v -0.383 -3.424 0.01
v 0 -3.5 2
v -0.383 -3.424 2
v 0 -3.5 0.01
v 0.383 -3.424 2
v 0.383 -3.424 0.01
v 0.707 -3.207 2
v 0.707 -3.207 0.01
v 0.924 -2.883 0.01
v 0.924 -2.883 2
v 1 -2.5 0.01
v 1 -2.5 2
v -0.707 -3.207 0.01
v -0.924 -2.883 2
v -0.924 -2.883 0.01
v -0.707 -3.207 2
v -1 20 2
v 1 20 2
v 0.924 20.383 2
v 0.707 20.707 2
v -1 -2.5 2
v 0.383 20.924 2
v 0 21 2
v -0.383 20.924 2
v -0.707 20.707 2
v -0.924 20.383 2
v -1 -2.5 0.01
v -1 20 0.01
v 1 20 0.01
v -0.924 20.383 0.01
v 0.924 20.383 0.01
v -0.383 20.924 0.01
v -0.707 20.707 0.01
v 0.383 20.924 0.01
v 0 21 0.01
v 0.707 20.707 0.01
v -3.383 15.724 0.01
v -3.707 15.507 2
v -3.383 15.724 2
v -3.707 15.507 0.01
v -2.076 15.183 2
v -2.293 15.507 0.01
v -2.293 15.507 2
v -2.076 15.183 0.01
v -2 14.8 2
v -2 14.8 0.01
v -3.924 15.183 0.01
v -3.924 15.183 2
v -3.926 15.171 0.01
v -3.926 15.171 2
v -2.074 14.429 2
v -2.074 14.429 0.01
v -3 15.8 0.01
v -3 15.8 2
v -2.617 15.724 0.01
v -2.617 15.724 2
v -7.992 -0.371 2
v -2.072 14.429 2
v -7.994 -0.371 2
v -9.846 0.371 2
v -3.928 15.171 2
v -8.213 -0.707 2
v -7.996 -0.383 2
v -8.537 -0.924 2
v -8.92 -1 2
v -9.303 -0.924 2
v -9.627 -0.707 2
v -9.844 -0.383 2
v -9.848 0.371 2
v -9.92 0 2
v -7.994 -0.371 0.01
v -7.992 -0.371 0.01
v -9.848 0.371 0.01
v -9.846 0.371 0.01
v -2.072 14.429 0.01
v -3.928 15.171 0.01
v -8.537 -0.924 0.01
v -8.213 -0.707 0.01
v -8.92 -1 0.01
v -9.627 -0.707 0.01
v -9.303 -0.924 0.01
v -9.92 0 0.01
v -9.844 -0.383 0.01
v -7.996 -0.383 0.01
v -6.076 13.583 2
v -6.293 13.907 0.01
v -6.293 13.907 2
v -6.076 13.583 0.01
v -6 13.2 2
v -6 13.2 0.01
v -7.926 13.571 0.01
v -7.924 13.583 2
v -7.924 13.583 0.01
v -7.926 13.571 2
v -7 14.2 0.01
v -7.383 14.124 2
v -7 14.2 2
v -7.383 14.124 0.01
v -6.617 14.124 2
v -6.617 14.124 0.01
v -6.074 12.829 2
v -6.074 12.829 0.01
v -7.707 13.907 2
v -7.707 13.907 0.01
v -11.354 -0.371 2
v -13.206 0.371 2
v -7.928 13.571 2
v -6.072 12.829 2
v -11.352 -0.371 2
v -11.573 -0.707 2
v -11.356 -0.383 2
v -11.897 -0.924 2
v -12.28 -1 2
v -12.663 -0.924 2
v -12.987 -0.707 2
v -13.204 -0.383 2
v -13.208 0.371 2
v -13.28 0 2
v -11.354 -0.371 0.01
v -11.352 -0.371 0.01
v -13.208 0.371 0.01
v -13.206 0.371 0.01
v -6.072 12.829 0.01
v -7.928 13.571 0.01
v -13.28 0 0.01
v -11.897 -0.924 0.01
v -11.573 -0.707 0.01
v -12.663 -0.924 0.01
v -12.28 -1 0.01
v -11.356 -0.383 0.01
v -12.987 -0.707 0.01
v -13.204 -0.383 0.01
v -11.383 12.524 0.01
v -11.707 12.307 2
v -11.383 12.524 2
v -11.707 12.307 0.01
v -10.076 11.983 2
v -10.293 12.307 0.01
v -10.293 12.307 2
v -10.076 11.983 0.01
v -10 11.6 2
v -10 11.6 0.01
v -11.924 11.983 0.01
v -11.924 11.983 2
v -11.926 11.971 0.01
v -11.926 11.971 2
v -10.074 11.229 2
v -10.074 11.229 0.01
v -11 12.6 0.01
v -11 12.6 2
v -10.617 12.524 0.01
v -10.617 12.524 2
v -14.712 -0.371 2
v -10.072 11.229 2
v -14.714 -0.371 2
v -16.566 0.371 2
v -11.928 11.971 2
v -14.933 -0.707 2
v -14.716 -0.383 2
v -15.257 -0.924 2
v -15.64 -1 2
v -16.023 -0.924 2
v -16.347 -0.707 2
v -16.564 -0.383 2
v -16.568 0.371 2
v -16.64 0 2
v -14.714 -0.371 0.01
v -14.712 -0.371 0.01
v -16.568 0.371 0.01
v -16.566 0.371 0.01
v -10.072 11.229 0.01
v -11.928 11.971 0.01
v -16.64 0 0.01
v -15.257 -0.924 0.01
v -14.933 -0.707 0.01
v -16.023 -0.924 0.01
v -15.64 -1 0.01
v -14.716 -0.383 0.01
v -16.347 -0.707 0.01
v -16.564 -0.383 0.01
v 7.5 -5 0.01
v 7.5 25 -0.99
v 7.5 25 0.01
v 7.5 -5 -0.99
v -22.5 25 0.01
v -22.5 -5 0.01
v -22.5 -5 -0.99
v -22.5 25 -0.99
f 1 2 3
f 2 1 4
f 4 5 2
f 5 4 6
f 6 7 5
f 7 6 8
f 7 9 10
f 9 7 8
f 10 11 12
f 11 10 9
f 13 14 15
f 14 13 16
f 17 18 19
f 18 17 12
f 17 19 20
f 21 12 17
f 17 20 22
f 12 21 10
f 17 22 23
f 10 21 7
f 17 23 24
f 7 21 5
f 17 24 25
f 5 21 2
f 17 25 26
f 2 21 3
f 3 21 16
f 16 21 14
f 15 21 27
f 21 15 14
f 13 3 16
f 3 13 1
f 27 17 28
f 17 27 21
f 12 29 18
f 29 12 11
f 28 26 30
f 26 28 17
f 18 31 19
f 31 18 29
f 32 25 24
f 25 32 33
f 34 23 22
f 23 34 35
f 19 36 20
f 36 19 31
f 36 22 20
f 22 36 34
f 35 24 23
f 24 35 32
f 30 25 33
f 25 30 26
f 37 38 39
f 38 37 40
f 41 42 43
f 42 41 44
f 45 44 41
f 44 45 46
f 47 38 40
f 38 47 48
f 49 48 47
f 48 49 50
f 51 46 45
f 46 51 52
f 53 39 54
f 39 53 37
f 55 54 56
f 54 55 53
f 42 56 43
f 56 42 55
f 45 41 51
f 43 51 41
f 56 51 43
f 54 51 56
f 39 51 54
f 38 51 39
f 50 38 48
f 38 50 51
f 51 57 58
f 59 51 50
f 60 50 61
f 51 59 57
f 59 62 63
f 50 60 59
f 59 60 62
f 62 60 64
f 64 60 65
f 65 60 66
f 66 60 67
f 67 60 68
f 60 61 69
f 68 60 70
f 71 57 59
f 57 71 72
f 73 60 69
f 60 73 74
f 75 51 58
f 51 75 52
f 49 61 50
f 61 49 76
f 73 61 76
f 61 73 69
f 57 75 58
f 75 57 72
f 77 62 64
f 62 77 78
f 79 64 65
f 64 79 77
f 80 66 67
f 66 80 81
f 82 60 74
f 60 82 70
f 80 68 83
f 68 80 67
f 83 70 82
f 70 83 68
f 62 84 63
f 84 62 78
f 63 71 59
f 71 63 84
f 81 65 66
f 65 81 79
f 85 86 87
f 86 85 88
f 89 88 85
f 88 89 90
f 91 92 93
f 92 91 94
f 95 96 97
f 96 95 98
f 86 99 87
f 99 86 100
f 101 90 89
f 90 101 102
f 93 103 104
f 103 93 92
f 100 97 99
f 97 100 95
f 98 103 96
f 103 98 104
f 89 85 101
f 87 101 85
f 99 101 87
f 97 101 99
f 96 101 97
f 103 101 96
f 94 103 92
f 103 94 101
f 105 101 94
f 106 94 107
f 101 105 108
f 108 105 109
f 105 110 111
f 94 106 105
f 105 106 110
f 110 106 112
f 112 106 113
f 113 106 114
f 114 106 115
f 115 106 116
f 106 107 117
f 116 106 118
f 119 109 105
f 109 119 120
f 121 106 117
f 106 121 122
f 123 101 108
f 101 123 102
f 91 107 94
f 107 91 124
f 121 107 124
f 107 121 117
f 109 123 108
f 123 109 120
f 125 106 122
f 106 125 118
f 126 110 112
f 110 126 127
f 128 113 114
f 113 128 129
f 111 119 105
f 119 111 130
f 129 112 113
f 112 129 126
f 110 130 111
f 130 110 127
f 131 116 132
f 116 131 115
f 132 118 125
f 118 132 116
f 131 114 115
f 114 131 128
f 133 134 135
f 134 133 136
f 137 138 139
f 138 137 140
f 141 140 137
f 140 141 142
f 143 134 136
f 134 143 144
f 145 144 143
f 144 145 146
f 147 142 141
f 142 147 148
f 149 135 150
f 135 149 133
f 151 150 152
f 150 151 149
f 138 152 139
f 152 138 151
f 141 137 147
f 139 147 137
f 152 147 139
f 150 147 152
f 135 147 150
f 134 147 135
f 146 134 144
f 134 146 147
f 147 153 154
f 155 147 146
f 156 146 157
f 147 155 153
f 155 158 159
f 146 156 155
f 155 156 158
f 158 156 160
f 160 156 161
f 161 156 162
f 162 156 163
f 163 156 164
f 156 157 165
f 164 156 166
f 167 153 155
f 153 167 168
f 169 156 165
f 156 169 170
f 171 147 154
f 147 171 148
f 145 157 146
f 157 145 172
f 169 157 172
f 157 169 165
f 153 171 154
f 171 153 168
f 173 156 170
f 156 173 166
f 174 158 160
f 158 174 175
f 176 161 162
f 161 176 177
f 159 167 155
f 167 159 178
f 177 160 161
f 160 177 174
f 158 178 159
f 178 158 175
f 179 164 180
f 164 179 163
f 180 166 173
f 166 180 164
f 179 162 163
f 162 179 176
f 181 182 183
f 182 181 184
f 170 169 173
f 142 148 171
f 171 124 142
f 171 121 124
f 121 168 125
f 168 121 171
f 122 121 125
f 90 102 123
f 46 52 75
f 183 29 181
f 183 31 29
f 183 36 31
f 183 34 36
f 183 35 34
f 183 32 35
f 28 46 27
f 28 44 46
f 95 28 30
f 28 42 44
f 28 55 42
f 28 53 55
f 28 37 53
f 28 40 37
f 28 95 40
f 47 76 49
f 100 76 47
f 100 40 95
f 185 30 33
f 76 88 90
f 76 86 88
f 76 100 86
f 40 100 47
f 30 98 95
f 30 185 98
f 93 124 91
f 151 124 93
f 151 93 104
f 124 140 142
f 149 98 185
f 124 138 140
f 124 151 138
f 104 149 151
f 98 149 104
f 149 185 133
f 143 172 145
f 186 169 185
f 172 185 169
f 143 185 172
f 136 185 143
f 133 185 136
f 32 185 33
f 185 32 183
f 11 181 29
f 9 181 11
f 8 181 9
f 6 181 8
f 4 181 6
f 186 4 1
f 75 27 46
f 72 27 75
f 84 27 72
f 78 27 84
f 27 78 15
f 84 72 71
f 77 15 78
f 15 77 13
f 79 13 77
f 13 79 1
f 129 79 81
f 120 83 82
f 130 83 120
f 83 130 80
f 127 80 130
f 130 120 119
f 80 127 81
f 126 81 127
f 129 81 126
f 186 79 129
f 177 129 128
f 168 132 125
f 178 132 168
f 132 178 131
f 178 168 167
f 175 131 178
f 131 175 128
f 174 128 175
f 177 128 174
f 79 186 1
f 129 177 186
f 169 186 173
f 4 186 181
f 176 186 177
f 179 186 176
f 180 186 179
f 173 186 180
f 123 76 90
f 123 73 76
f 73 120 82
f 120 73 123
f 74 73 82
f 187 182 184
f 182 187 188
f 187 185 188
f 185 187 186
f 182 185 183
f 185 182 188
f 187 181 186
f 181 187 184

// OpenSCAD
// 4p-icon.scad

delta = 0.01 ;
clearance = 0.1 ;

module oval(x, d, h) {
    // Oval shape aligned on the X axis, with one end centred on the origin
    //
    // x  = X position of second centre of curvature
    // d  = width of oval, also diameter of curved ends
    // h  = height (thickness) of oval
    //
    cylinder(d=d, h=h, $fn=16) ;
    translate([x,0,0])
        cylinder(d=d, h=h, $fn=16) ;
    translate([x/2,0,h/2])
        cube(size=[x, d, h], center=true) ;
}

module oval_xy(x1, y1, x2, y2, d, h) {
    // Oval shape on the X-Y plane, with ends at the indicated positions
    //
    // x1 = X position of first centre of curvature
    // y1 = Y position of first centre of curvature
    // x2 = X position of second centre of curvature
    // y2 = Y position of second centre of curvature
    // d  = width of oval, also diameter of curved ends
    // h  = height (thickness) of oval
    //
    l = sqrt((x2-x1)^2+(y2-y1)^2) ;     // Length of oval (between radius centres)
    a = atan2(y2-y1,x2-x1) ;            // Angle of oval from X-axis
    translate([x1,y1,0]) {
        cylinder(d=d, h=h, $fn=16) ;
        rotate([0,0,a])
            translate([0,-d/2,0])
                cube(size=[l, d, h], center=false) ;
    }
    translate([x2,y2,0])
        cylinder(d=d, h=h, $fn=16) ;
}
////-oval_xy(x1, y1, x2, y2, d, h) instance
// oval_xy(-20,30,-60,-60,10,5) ;

h1 = 20 ;
h2 = 16 ;
w  = 20 ;
wv = 40 ;
t1 = 1 ;
t2 = 2 ;

translate([-w-2.5, -5, -t1+delta])
    cube(size=[w+10,h1+10,t1]) ;
oval_xy(0,-2.5, 0,h1, 2, t2) ;

for (i = [1,2,3]) {
	x1 = 1 - 4*i ;
	y1 = h2 * (wv+x1)/wv ;
	x2 = x1 - y1*0.4 ;
	y2 = 0 ;
    oval_xy(x1,y1, x2,y2, 2, t2) ;
}
